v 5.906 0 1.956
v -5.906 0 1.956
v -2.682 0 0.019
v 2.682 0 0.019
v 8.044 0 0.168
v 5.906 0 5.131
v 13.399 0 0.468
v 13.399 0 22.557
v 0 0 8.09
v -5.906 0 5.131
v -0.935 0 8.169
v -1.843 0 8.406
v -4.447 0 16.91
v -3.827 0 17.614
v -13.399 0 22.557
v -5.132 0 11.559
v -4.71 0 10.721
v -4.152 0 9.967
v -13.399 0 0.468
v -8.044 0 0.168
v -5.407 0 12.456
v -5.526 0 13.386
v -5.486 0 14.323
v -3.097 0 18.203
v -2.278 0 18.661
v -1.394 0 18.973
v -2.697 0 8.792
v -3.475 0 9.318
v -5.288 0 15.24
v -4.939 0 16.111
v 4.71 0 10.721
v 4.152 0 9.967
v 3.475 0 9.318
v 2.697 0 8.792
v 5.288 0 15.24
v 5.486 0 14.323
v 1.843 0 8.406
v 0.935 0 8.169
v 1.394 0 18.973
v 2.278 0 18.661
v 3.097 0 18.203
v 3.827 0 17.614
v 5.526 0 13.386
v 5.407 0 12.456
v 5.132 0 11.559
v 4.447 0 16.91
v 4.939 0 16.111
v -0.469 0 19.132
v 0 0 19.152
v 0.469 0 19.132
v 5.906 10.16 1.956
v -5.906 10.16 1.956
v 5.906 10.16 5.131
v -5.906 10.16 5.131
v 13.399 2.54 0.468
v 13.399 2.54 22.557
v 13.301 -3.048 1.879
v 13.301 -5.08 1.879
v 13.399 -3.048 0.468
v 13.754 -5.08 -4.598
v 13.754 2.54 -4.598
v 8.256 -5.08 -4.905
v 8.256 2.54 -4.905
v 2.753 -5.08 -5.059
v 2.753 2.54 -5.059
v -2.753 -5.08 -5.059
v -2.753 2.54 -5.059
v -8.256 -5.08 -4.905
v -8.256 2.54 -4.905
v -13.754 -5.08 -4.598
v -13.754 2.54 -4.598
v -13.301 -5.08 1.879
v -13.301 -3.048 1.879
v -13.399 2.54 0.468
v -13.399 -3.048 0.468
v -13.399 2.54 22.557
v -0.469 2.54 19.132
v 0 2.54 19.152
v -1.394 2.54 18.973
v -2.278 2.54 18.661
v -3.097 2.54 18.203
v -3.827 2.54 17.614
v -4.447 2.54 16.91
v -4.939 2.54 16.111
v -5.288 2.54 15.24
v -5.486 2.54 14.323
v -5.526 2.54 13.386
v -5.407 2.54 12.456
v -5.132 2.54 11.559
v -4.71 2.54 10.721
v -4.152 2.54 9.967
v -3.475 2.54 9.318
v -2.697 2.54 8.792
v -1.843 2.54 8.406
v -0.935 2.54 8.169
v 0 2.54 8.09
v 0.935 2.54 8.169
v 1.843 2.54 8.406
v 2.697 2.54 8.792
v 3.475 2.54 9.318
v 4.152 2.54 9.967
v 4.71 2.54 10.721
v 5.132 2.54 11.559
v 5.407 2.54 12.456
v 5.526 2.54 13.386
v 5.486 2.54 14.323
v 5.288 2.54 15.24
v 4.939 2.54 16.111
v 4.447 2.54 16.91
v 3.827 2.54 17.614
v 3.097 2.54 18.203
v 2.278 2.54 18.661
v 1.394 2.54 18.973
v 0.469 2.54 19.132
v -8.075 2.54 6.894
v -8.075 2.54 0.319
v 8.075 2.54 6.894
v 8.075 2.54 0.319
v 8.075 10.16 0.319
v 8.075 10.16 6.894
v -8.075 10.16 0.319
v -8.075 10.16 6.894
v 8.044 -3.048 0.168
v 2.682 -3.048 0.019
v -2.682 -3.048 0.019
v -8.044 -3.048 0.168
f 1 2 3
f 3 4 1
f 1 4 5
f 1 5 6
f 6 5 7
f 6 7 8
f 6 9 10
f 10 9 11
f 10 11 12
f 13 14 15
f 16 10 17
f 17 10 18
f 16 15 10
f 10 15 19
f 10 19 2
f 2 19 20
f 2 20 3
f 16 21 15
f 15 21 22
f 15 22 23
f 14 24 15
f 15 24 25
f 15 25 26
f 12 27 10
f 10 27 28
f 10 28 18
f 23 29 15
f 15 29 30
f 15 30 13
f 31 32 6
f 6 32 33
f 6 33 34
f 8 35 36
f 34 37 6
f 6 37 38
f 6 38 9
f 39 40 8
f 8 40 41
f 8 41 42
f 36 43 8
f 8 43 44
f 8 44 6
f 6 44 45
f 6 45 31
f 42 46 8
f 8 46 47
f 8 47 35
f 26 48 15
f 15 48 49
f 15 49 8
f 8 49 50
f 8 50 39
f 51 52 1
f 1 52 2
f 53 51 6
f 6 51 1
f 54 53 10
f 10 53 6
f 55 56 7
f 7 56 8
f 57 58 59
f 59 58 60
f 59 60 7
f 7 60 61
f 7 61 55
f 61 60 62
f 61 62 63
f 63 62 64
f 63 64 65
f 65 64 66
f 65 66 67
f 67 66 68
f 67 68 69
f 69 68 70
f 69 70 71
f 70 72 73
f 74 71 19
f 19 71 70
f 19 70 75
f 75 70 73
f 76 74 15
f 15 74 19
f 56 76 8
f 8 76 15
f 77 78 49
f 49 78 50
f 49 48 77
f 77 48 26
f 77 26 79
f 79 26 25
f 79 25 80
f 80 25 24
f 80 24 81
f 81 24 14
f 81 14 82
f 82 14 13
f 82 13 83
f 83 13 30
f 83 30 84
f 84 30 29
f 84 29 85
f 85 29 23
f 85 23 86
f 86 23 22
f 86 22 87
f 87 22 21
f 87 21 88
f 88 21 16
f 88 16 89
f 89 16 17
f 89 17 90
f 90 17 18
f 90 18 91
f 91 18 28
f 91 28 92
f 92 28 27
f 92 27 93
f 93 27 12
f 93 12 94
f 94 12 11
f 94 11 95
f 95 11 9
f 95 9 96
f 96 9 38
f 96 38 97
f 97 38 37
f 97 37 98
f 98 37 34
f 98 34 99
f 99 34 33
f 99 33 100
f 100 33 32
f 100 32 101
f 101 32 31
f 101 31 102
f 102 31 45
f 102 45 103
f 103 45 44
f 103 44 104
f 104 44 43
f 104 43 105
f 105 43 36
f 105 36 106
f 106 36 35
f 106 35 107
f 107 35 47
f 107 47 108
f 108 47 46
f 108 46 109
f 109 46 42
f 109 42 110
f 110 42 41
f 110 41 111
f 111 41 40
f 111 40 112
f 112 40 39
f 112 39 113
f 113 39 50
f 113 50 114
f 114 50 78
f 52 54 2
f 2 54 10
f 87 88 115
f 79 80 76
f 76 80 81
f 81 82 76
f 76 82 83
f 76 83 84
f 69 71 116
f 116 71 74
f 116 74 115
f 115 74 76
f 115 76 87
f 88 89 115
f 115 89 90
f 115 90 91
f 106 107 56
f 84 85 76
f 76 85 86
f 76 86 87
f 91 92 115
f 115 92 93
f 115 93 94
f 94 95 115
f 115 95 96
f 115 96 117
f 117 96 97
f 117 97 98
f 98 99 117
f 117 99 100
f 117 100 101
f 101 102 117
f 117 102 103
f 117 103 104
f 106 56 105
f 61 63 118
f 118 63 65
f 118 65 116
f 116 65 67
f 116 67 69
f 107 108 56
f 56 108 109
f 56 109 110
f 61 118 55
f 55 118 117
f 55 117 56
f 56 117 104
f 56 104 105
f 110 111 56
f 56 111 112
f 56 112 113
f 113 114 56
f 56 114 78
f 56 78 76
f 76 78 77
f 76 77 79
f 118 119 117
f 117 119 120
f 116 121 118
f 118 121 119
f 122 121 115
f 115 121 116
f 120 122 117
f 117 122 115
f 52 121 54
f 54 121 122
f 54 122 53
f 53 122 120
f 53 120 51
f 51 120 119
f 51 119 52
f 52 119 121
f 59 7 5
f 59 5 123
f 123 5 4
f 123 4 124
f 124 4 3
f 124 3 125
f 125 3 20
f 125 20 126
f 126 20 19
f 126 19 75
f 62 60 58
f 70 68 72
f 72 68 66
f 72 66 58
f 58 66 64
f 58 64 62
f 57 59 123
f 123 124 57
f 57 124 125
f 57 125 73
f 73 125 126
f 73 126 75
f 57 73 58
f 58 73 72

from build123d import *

# Parameters (mm, degrees)
SKETCH1_R           = 5.53085
SKETCH1_W           = 11.811
SKETCH1_H           = 3.175
BOSS_EXTRUDE1_DEPTH = 2.54
SKETCH1_3_W         = 16.150142566
SKETCH1_3_H         = 6.574737844
BOSS_EXTRUDE2_DEPTH = 10.16
BOSS_EXTRUDE3_START = -5.08
BOSS_EXTRUDE3_DEPTH = 5.08
BOSS_EXTRUDE5_DEPTH = 2.032


with BuildPart() as part:
    # Sketch1 → Boss-Extrude1 (new body)
    with BuildSketch(Plane(origin=(0, 0, 0), x_dir=(1, 0, 0), z_dir=(0, 1, 0))):
        with BuildLine():
            ThreePointArc((13.753578899, 4.597841674), (0, 5.078127233), (-13.753578899, 4.597841674))
            Line((-13.753578899, 4.597841674), (-13.39934665, -0.467915496))
            Line((-13.39934665, -0.467915496), (-13.39934665, -22.557024998))
            Line((-13.39934665, -22.557024998), (13.39934665, -22.557024998))
            Line((13.39934665, -22.557024998), (13.39934665, -0.467915496))
            Line((13.39934665, -0.467915496), (13.753578899, 4.597841674))
        make_face()
        with Locations((0, -13.62075)):
            Circle(SKETCH1_R, mode=Mode.SUBTRACT)
        with Locations((0, -3.5433)):
            Rectangle(SKETCH1_W, SKETCH1_H, mode=Mode.SUBTRACT)
    extrude(amount=BOSS_EXTRUDE1_DEPTH)

    # Sketch1<3> → Boss-Extrude2 (add)
    with BuildSketch(Plane(origin=(0, 0, 0), x_dir=(1, 0, 0), z_dir=(0, 1, 0))):
        with Locations((0, -3.6068)):
            Rectangle(SKETCH1_3_W, SKETCH1_3_H)
        Polygon((0, -5.1308), (-5.9055, -5.1308), (-5.9055, -1.9558), (5.9055, -1.9558), (5.9055, -5.1308), align=None, mode=Mode.SUBTRACT)
    extrude(amount=BOSS_EXTRUDE2_DEPTH)

    # Sketch1<4> → Boss-Extrude3 (add)
    with BuildSketch(Plane(origin=(0, 0, 0), x_dir=(1, 0, 0), z_dir=(0, 1, 0)).offset(BOSS_EXTRUDE3_START)):
        with BuildLine():
            ThreePointArc((13.753578899, 4.597841674), (0, 5.078127233), (-13.753578899, 4.597841674))
            Line((-13.753578899, 4.597841674), (-13.39934665, -0.467915496))
            ThreePointArc((-13.39934665, -0.467915496), (-6.703757073, -0.117014515), (0, 0))
            ThreePointArc((0, 0), (6.703757073, -0.117014515), (13.39934665, -0.467915496))
            Line((13.39934665, -0.467915496), (13.753578899, 4.597841674))
        make_face()
    extrude(amount=BOSS_EXTRUDE3_DEPTH)

    # Sketch2 → Boss-Extrude5 (add)
    with BuildSketch(Plane.XZ.offset(5.08)):
        Polygon((-13.753578899, -4.597841674), (-13.39934665, 0.467915496), (-13.300671129, 1.879041191), (13.300671129, 1.879041191), (13.39934665, 0.467915496), (13.753578899, -4.597841674), align=None)
    extrude(amount=-BOSS_EXTRUDE5_DEPTH)


solid = part.part
